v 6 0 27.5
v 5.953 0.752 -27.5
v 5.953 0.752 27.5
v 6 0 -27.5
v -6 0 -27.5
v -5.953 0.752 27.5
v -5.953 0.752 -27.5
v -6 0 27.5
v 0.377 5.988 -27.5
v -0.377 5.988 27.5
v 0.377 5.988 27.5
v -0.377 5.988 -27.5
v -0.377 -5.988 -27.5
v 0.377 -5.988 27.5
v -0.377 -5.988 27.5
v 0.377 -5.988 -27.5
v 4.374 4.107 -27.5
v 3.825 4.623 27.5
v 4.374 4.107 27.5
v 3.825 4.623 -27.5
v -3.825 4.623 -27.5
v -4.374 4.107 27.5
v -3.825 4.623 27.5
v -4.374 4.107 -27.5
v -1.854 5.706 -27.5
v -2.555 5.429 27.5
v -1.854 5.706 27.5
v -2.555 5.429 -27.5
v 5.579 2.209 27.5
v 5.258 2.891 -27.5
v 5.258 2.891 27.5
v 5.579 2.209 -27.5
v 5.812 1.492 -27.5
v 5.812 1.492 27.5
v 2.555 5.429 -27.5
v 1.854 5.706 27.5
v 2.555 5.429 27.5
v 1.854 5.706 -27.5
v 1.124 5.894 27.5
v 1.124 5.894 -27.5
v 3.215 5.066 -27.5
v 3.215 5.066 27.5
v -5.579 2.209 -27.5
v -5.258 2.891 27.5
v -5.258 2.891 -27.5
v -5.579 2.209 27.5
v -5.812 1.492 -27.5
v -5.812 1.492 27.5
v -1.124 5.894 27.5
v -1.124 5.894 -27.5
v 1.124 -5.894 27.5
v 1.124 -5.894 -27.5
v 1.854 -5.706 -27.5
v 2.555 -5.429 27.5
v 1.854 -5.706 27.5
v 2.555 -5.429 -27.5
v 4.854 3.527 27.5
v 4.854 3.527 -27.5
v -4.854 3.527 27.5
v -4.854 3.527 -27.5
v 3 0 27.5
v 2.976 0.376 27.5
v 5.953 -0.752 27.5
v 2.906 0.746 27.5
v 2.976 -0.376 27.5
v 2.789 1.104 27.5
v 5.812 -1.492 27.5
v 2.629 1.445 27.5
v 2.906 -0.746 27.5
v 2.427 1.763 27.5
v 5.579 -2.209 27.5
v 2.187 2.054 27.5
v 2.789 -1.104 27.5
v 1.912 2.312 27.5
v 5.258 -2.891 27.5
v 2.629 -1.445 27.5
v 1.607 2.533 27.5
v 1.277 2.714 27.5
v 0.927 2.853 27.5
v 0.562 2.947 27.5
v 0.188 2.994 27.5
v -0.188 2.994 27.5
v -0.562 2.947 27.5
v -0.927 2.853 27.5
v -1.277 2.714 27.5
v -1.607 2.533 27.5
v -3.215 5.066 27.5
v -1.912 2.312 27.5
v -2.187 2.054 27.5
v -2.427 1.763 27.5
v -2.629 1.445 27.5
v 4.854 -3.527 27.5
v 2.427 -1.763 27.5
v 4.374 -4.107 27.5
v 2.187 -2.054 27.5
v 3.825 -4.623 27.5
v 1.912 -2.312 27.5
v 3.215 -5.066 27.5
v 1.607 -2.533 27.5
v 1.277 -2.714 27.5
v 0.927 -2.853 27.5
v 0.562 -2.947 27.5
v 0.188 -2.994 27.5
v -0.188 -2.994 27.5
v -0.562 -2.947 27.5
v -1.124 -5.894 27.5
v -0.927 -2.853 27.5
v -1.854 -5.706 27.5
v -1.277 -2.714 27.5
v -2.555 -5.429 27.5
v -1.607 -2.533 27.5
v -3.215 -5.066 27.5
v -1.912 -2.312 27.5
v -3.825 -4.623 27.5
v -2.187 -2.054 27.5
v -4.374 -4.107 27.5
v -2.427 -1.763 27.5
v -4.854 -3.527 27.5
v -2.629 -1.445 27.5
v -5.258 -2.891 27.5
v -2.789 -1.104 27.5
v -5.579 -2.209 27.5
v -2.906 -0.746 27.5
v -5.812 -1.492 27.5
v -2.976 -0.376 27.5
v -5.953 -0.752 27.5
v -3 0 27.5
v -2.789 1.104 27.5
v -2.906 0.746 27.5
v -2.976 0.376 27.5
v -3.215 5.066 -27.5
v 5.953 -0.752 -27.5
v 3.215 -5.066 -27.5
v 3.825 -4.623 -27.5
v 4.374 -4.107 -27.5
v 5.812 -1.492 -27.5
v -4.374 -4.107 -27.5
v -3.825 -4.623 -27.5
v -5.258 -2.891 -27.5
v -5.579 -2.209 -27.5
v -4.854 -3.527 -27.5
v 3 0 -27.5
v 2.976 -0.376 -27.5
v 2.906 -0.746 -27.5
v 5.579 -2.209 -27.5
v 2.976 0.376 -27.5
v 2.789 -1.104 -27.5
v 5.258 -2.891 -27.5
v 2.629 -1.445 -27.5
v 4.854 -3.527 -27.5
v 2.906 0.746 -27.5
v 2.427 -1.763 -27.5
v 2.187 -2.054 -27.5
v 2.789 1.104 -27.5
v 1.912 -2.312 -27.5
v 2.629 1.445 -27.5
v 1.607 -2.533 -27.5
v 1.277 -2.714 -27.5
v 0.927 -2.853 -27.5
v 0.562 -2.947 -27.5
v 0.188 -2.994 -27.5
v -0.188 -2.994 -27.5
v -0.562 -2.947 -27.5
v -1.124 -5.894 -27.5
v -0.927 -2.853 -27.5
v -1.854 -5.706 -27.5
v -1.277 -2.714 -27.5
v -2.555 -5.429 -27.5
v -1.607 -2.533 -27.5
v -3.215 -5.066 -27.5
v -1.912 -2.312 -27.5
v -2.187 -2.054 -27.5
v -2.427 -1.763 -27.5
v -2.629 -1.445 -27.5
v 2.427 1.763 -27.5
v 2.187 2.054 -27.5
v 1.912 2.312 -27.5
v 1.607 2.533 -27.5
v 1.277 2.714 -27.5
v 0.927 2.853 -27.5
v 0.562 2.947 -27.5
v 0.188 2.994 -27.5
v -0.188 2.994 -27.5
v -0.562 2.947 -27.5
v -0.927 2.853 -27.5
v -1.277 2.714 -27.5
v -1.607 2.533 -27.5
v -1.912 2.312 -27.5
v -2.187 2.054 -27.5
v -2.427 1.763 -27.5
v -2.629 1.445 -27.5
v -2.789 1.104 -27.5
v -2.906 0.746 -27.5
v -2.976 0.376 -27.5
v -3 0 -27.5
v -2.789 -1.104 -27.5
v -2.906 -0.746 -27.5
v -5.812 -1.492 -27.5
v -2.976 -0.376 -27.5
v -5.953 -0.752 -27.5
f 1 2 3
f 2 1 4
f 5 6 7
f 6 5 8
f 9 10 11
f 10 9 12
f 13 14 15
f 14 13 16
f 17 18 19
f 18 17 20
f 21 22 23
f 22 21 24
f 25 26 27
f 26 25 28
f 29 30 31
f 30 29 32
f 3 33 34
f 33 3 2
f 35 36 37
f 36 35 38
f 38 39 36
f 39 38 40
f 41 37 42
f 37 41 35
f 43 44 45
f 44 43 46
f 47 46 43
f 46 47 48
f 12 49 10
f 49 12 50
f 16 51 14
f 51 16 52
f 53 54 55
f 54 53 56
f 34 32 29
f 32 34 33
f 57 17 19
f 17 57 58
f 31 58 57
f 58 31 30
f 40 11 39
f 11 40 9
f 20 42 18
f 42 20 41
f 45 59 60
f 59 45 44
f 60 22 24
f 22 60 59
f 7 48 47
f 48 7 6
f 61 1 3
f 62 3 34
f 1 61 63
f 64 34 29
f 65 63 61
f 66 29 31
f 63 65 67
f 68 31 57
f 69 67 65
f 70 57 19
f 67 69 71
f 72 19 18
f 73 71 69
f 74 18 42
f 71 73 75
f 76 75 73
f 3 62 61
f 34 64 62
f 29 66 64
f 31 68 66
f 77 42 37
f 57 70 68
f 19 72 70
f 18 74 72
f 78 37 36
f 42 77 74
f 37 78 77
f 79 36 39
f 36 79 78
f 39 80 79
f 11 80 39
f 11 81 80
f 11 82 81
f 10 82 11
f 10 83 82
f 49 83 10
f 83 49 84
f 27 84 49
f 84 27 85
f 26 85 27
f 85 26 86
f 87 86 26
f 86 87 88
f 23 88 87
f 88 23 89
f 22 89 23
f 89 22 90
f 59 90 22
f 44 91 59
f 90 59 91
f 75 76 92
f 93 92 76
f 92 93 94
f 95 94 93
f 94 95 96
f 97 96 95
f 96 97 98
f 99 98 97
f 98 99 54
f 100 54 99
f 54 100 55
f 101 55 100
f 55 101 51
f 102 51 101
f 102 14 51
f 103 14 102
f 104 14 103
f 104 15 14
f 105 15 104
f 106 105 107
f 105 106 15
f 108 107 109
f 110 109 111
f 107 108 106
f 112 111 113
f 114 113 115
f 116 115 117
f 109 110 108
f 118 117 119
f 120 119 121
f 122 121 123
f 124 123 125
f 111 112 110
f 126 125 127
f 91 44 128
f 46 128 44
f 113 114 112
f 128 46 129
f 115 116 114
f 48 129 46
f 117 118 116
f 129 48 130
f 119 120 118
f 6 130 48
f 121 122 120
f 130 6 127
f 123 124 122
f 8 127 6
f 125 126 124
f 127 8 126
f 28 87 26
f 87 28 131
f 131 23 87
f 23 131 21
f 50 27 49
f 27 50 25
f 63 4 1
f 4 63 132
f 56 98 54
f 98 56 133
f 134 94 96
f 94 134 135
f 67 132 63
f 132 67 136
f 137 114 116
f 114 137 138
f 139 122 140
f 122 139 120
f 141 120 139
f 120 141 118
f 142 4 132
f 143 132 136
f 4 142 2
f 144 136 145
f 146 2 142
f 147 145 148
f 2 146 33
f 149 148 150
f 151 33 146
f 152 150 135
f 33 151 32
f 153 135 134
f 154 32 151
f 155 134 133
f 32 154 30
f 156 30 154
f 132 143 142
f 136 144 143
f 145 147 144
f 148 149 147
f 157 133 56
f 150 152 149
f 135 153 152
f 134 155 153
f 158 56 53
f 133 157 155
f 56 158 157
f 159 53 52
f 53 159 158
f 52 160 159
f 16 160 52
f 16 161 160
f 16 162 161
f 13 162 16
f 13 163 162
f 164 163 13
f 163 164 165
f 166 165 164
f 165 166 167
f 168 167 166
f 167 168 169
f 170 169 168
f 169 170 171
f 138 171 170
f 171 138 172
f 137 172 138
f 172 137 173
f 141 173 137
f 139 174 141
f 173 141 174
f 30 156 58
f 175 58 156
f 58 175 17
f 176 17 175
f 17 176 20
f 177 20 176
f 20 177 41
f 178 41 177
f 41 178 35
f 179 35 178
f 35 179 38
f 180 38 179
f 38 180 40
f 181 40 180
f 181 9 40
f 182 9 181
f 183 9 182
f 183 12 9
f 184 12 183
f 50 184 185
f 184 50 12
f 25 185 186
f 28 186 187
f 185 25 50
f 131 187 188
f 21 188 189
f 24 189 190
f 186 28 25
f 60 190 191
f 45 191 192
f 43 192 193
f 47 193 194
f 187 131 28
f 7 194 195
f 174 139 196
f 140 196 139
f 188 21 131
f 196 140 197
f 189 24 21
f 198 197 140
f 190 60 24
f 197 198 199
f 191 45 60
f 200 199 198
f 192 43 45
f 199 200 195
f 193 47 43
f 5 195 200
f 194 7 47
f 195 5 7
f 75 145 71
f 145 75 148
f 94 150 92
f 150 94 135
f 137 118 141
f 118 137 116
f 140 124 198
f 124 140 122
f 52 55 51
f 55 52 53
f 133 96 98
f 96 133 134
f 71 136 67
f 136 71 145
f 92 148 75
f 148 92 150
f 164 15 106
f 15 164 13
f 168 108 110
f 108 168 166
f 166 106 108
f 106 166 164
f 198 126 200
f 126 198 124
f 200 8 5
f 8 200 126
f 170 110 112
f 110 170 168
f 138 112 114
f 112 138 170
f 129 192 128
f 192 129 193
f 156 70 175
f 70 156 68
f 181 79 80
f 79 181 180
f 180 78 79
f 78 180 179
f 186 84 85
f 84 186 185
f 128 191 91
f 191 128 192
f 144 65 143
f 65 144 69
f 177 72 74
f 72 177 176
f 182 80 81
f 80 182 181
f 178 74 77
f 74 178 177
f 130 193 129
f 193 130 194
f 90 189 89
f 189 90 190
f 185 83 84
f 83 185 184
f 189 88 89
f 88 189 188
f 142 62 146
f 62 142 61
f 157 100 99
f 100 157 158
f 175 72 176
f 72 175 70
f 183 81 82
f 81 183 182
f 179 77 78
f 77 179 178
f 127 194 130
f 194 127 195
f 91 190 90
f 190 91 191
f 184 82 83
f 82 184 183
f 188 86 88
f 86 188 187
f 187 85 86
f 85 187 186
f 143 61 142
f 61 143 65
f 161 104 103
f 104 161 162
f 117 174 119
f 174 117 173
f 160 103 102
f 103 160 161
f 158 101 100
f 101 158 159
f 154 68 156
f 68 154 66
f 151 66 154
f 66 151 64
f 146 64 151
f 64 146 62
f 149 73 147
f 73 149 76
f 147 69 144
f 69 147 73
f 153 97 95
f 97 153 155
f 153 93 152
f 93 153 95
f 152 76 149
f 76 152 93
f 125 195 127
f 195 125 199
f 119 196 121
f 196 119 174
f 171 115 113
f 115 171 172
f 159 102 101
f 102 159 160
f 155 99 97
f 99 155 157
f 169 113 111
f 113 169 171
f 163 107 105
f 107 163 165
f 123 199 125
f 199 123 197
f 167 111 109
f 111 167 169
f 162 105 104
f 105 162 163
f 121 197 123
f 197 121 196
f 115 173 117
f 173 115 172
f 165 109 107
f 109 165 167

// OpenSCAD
$fn = 50;


difference() {
	union() {
		translate(v = [0, 0, -27.5000000000]) {
			cylinder(h = 55, r = 6.0000000000);
		}
	}
	union() {
		translate(v = [0, 0, -100.0000000000]) {
			cylinder(h = 200, r = 3);
		}
	}
}
